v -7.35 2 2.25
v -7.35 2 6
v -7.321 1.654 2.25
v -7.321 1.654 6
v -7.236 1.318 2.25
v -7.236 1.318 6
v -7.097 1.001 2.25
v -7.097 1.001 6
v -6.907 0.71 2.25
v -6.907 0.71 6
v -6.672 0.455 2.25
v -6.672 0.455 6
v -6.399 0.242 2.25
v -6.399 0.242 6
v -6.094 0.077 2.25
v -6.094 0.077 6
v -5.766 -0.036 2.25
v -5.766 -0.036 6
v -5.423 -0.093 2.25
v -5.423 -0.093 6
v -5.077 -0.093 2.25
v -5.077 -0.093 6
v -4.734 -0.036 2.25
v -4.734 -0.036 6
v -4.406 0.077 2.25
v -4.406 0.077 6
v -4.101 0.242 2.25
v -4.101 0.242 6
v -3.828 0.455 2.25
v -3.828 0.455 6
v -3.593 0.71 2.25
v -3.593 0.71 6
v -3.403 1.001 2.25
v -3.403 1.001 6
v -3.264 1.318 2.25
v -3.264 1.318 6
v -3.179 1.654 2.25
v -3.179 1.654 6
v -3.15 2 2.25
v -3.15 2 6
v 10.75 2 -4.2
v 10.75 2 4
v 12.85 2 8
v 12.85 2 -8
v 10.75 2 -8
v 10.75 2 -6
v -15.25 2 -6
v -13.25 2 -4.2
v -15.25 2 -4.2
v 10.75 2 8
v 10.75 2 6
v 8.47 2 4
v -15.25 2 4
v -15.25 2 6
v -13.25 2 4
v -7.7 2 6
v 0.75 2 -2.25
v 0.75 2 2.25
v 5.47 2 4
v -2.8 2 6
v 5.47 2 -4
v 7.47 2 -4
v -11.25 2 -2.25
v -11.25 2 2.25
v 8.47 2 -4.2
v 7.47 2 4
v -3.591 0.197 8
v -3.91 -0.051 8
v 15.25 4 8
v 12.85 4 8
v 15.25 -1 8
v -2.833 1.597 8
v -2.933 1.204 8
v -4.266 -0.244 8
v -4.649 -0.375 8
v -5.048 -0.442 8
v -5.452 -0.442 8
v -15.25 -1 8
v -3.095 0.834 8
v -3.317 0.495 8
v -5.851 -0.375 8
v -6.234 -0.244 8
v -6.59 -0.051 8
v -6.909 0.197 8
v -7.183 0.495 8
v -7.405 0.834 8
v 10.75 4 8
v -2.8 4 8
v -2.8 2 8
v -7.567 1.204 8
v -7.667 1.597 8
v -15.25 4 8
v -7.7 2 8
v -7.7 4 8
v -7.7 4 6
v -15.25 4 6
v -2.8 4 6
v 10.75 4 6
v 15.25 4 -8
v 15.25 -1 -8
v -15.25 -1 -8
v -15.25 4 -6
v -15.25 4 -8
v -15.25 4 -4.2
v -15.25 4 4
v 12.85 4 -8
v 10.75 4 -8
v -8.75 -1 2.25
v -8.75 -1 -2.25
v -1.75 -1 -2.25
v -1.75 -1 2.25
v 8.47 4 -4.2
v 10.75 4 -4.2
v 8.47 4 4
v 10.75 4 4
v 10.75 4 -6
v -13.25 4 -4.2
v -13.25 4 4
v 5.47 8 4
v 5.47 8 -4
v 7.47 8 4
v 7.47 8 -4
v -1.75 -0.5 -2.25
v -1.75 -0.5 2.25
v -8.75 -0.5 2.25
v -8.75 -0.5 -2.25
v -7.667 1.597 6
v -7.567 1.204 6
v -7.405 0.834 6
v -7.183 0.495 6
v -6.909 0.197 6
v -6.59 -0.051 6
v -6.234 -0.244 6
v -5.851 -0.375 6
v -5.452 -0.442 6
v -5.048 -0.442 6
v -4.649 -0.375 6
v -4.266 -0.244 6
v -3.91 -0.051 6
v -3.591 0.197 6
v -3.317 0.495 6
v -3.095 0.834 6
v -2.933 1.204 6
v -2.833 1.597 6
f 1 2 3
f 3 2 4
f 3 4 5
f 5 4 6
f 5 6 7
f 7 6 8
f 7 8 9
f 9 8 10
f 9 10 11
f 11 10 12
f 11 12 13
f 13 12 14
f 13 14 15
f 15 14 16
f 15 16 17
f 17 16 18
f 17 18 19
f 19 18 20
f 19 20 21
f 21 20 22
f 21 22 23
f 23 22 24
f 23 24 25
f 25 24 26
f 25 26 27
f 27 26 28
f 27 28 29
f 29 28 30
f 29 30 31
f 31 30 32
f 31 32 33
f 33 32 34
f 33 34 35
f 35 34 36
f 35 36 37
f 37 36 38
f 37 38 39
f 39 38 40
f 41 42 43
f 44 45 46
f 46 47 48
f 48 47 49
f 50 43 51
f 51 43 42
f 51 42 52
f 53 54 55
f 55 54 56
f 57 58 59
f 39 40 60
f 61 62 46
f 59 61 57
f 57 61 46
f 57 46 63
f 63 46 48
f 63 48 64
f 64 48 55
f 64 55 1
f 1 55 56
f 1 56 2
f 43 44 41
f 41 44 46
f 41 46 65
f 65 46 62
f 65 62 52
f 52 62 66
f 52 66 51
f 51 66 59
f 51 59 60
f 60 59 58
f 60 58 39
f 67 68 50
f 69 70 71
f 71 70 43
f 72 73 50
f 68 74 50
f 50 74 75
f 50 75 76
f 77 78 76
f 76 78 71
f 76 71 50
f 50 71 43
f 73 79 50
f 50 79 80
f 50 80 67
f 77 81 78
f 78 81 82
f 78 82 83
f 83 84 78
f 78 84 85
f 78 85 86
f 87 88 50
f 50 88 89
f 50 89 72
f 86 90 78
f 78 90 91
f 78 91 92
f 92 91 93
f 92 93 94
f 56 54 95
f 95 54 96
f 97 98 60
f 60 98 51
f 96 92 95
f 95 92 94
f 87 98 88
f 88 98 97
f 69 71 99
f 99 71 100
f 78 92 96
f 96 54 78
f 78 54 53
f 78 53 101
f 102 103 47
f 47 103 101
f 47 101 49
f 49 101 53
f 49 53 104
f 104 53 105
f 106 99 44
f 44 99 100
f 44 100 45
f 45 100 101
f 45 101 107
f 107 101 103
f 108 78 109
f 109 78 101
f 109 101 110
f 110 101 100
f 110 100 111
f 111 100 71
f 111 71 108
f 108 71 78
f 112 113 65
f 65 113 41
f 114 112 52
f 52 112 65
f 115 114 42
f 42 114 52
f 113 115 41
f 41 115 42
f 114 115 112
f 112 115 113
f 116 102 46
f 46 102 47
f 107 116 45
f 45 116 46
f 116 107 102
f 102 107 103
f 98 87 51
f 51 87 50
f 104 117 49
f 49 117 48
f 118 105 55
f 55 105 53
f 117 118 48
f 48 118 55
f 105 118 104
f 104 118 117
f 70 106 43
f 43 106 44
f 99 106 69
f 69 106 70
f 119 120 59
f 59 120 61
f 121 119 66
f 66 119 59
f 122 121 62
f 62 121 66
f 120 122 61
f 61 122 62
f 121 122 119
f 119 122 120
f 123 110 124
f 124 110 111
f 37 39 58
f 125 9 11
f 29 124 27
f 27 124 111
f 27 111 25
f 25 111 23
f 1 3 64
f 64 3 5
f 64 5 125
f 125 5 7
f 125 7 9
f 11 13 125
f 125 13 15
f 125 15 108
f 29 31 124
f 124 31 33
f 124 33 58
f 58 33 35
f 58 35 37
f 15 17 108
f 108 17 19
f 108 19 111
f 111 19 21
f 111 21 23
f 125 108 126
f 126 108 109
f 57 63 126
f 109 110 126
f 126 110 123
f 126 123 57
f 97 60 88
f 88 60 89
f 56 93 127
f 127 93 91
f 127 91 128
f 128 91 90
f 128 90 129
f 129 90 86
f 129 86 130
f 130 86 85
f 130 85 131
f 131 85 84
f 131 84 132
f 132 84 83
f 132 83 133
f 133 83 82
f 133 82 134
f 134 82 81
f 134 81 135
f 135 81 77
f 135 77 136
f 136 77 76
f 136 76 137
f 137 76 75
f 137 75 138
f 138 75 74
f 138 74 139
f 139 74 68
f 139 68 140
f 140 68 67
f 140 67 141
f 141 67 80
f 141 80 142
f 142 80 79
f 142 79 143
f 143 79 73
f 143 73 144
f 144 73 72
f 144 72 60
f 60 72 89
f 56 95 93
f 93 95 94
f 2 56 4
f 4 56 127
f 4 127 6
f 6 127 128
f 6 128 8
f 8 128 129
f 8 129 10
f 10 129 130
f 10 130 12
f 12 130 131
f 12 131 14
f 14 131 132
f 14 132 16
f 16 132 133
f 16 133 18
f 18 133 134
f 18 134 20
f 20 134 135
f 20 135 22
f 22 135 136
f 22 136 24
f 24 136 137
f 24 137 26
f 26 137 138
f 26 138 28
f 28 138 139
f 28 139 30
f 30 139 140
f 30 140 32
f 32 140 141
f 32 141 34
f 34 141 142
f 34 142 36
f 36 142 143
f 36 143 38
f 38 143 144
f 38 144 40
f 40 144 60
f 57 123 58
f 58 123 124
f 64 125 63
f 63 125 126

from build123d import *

# Parameters (mm, degrees)
BOSS_EXTRUDE1_DEPTH      = 2
BOSS_EXTRUDE1_DEPTH_BACK = 1
SKETCH1_W                = 30.5
SKETCH1_H                = 16
SKETCH2_W                = 2.4
SKETCH2_H                = 16
SKETCH2_W_2              = 26
SKETCH2_H_2              = 2
SKETCH2_W_3              = 2
SKETCH2_H_3              = 8.2
SKETCH2_W_4              = 2.279749354
BOSS_EXTRUDE2_DEPTH      = 2
SKETCH3_W                = 2
SKETCH3_H                = 8
BOSS_EXTRUDE3_DEPTH      = 6
SKETCH4_W                = 7
SKETCH4_H                = 4.5
CUT_EXTRUDE1_DEPTH       = 3
CUT_EXTRUDE2_DEPTH       = 7
CUT_EXTRUDE3_DEPTH       = 2
CHAMFER1_SIZE            = 2.5


with BuildPart() as part:
    # Sketch1 → Boss-Extrude1 (new, two sides: drawn at the far end of the back side and taken through both)
    with BuildSketch(Plane(origin=(0, 0, 0), x_dir=(1, 0, 0), z_dir=(0, 1, 0)).offset(-BOSS_EXTRUDE1_DEPTH_BACK)):
        Rectangle(SKETCH1_W, SKETCH1_H)
    extrude(amount=BOSS_EXTRUDE1_DEPTH + BOSS_EXTRUDE1_DEPTH_BACK)

    # Sketch2 → Boss-Extrude2 (add)
    with BuildSketch(Plane(origin=(0, 2, 0), x_dir=(1, 0, 0), z_dir=(0, 1, 0))):
        with Locations((14.05, 0)):
            Rectangle(SKETCH2_W, SKETCH2_H)
        with Locations((-2.25, 7)):
            Rectangle(SKETCH2_W_2, SKETCH2_H_2)
        with Locations((-2.25, -7)):
            Rectangle(SKETCH2_W_2, SKETCH2_H_2)
        with Locations((-14.25, 0.1)):
            Rectangle(SKETCH2_W_3, SKETCH2_H_3)
        with Locations((9.610125323, 0.1)):
            Rectangle(SKETCH2_W_4, SKETCH2_H_3)
    extrude(amount=BOSS_EXTRUDE2_DEPTH)

    # Sketch3 → Boss-Extrude3 (add)
    with BuildSketch(Plane(origin=(0, 2, 0), x_dir=(1, 0, 0), z_dir=(0, 1, 0))):
        with Locations((6.470250646, 0)):
            Rectangle(SKETCH3_W, SKETCH3_H)
    extrude(amount=BOSS_EXTRUDE3_DEPTH)

    # Sketch4 → Cut-Extrude1 (cut)
    with BuildSketch(Plane(origin=(0, 2, 0), x_dir=(1, 0, 0), z_dir=(0, 1, 0))):
        with Locations((-5.25, 0)):
            Rectangle(SKETCH4_W, SKETCH4_H)
    extrude(amount=-CUT_EXTRUDE1_DEPTH, mode=Mode.SUBTRACT)

    # Sketch5 → Cut-Extrude2 (cut)
    with BuildSketch(Plane(origin=(0, 0, 8), x_dir=(-1, 0, 0), z_dir=(0, 0, -1))):
        with BuildLine():
            Line((3.15, 2), (3.15, 4.2))
            Line((3.15, 4.2), (7.35, 4.2))
            Line((7.35, 4.2), (7.35, 2))
            ThreePointArc((7.35, 2), (5.25, -0.1), (3.15, 2))
        make_face()
    extrude(amount=CUT_EXTRUDE2_DEPTH, mode=Mode.SUBTRACT)

    # Sketch6 → Cut-Extrude3 (cut)
    with BuildSketch(Plane.XY.offset(8)):
        with BuildLine():
            Line((-7.7, 4), (-7.7, 2))
            ThreePointArc((-7.7, 2), (-5.25, -0.45), (-2.8, 2))
            Line((-2.8, 2), (-2.8, 4))
            Line((-2.8, 4), (-3, 4))
            Line((-3, 4), (-7.5, 4))
            Line((-7.5, 4), (-7.7, 4))
        make_face()
    extrude(amount=-CUT_EXTRUDE3_DEPTH, mode=Mode.SUBTRACT)

    # Chamfer1
    chamfer1_edges = [part.edges().sort_by_distance(p)[0] for p in [
        (-1.75, 2, 0),
        (-8.75, 2, 0),
    ]]
    chamfer(chamfer1_edges, length=CHAMFER1_SIZE)


solid = part.part
